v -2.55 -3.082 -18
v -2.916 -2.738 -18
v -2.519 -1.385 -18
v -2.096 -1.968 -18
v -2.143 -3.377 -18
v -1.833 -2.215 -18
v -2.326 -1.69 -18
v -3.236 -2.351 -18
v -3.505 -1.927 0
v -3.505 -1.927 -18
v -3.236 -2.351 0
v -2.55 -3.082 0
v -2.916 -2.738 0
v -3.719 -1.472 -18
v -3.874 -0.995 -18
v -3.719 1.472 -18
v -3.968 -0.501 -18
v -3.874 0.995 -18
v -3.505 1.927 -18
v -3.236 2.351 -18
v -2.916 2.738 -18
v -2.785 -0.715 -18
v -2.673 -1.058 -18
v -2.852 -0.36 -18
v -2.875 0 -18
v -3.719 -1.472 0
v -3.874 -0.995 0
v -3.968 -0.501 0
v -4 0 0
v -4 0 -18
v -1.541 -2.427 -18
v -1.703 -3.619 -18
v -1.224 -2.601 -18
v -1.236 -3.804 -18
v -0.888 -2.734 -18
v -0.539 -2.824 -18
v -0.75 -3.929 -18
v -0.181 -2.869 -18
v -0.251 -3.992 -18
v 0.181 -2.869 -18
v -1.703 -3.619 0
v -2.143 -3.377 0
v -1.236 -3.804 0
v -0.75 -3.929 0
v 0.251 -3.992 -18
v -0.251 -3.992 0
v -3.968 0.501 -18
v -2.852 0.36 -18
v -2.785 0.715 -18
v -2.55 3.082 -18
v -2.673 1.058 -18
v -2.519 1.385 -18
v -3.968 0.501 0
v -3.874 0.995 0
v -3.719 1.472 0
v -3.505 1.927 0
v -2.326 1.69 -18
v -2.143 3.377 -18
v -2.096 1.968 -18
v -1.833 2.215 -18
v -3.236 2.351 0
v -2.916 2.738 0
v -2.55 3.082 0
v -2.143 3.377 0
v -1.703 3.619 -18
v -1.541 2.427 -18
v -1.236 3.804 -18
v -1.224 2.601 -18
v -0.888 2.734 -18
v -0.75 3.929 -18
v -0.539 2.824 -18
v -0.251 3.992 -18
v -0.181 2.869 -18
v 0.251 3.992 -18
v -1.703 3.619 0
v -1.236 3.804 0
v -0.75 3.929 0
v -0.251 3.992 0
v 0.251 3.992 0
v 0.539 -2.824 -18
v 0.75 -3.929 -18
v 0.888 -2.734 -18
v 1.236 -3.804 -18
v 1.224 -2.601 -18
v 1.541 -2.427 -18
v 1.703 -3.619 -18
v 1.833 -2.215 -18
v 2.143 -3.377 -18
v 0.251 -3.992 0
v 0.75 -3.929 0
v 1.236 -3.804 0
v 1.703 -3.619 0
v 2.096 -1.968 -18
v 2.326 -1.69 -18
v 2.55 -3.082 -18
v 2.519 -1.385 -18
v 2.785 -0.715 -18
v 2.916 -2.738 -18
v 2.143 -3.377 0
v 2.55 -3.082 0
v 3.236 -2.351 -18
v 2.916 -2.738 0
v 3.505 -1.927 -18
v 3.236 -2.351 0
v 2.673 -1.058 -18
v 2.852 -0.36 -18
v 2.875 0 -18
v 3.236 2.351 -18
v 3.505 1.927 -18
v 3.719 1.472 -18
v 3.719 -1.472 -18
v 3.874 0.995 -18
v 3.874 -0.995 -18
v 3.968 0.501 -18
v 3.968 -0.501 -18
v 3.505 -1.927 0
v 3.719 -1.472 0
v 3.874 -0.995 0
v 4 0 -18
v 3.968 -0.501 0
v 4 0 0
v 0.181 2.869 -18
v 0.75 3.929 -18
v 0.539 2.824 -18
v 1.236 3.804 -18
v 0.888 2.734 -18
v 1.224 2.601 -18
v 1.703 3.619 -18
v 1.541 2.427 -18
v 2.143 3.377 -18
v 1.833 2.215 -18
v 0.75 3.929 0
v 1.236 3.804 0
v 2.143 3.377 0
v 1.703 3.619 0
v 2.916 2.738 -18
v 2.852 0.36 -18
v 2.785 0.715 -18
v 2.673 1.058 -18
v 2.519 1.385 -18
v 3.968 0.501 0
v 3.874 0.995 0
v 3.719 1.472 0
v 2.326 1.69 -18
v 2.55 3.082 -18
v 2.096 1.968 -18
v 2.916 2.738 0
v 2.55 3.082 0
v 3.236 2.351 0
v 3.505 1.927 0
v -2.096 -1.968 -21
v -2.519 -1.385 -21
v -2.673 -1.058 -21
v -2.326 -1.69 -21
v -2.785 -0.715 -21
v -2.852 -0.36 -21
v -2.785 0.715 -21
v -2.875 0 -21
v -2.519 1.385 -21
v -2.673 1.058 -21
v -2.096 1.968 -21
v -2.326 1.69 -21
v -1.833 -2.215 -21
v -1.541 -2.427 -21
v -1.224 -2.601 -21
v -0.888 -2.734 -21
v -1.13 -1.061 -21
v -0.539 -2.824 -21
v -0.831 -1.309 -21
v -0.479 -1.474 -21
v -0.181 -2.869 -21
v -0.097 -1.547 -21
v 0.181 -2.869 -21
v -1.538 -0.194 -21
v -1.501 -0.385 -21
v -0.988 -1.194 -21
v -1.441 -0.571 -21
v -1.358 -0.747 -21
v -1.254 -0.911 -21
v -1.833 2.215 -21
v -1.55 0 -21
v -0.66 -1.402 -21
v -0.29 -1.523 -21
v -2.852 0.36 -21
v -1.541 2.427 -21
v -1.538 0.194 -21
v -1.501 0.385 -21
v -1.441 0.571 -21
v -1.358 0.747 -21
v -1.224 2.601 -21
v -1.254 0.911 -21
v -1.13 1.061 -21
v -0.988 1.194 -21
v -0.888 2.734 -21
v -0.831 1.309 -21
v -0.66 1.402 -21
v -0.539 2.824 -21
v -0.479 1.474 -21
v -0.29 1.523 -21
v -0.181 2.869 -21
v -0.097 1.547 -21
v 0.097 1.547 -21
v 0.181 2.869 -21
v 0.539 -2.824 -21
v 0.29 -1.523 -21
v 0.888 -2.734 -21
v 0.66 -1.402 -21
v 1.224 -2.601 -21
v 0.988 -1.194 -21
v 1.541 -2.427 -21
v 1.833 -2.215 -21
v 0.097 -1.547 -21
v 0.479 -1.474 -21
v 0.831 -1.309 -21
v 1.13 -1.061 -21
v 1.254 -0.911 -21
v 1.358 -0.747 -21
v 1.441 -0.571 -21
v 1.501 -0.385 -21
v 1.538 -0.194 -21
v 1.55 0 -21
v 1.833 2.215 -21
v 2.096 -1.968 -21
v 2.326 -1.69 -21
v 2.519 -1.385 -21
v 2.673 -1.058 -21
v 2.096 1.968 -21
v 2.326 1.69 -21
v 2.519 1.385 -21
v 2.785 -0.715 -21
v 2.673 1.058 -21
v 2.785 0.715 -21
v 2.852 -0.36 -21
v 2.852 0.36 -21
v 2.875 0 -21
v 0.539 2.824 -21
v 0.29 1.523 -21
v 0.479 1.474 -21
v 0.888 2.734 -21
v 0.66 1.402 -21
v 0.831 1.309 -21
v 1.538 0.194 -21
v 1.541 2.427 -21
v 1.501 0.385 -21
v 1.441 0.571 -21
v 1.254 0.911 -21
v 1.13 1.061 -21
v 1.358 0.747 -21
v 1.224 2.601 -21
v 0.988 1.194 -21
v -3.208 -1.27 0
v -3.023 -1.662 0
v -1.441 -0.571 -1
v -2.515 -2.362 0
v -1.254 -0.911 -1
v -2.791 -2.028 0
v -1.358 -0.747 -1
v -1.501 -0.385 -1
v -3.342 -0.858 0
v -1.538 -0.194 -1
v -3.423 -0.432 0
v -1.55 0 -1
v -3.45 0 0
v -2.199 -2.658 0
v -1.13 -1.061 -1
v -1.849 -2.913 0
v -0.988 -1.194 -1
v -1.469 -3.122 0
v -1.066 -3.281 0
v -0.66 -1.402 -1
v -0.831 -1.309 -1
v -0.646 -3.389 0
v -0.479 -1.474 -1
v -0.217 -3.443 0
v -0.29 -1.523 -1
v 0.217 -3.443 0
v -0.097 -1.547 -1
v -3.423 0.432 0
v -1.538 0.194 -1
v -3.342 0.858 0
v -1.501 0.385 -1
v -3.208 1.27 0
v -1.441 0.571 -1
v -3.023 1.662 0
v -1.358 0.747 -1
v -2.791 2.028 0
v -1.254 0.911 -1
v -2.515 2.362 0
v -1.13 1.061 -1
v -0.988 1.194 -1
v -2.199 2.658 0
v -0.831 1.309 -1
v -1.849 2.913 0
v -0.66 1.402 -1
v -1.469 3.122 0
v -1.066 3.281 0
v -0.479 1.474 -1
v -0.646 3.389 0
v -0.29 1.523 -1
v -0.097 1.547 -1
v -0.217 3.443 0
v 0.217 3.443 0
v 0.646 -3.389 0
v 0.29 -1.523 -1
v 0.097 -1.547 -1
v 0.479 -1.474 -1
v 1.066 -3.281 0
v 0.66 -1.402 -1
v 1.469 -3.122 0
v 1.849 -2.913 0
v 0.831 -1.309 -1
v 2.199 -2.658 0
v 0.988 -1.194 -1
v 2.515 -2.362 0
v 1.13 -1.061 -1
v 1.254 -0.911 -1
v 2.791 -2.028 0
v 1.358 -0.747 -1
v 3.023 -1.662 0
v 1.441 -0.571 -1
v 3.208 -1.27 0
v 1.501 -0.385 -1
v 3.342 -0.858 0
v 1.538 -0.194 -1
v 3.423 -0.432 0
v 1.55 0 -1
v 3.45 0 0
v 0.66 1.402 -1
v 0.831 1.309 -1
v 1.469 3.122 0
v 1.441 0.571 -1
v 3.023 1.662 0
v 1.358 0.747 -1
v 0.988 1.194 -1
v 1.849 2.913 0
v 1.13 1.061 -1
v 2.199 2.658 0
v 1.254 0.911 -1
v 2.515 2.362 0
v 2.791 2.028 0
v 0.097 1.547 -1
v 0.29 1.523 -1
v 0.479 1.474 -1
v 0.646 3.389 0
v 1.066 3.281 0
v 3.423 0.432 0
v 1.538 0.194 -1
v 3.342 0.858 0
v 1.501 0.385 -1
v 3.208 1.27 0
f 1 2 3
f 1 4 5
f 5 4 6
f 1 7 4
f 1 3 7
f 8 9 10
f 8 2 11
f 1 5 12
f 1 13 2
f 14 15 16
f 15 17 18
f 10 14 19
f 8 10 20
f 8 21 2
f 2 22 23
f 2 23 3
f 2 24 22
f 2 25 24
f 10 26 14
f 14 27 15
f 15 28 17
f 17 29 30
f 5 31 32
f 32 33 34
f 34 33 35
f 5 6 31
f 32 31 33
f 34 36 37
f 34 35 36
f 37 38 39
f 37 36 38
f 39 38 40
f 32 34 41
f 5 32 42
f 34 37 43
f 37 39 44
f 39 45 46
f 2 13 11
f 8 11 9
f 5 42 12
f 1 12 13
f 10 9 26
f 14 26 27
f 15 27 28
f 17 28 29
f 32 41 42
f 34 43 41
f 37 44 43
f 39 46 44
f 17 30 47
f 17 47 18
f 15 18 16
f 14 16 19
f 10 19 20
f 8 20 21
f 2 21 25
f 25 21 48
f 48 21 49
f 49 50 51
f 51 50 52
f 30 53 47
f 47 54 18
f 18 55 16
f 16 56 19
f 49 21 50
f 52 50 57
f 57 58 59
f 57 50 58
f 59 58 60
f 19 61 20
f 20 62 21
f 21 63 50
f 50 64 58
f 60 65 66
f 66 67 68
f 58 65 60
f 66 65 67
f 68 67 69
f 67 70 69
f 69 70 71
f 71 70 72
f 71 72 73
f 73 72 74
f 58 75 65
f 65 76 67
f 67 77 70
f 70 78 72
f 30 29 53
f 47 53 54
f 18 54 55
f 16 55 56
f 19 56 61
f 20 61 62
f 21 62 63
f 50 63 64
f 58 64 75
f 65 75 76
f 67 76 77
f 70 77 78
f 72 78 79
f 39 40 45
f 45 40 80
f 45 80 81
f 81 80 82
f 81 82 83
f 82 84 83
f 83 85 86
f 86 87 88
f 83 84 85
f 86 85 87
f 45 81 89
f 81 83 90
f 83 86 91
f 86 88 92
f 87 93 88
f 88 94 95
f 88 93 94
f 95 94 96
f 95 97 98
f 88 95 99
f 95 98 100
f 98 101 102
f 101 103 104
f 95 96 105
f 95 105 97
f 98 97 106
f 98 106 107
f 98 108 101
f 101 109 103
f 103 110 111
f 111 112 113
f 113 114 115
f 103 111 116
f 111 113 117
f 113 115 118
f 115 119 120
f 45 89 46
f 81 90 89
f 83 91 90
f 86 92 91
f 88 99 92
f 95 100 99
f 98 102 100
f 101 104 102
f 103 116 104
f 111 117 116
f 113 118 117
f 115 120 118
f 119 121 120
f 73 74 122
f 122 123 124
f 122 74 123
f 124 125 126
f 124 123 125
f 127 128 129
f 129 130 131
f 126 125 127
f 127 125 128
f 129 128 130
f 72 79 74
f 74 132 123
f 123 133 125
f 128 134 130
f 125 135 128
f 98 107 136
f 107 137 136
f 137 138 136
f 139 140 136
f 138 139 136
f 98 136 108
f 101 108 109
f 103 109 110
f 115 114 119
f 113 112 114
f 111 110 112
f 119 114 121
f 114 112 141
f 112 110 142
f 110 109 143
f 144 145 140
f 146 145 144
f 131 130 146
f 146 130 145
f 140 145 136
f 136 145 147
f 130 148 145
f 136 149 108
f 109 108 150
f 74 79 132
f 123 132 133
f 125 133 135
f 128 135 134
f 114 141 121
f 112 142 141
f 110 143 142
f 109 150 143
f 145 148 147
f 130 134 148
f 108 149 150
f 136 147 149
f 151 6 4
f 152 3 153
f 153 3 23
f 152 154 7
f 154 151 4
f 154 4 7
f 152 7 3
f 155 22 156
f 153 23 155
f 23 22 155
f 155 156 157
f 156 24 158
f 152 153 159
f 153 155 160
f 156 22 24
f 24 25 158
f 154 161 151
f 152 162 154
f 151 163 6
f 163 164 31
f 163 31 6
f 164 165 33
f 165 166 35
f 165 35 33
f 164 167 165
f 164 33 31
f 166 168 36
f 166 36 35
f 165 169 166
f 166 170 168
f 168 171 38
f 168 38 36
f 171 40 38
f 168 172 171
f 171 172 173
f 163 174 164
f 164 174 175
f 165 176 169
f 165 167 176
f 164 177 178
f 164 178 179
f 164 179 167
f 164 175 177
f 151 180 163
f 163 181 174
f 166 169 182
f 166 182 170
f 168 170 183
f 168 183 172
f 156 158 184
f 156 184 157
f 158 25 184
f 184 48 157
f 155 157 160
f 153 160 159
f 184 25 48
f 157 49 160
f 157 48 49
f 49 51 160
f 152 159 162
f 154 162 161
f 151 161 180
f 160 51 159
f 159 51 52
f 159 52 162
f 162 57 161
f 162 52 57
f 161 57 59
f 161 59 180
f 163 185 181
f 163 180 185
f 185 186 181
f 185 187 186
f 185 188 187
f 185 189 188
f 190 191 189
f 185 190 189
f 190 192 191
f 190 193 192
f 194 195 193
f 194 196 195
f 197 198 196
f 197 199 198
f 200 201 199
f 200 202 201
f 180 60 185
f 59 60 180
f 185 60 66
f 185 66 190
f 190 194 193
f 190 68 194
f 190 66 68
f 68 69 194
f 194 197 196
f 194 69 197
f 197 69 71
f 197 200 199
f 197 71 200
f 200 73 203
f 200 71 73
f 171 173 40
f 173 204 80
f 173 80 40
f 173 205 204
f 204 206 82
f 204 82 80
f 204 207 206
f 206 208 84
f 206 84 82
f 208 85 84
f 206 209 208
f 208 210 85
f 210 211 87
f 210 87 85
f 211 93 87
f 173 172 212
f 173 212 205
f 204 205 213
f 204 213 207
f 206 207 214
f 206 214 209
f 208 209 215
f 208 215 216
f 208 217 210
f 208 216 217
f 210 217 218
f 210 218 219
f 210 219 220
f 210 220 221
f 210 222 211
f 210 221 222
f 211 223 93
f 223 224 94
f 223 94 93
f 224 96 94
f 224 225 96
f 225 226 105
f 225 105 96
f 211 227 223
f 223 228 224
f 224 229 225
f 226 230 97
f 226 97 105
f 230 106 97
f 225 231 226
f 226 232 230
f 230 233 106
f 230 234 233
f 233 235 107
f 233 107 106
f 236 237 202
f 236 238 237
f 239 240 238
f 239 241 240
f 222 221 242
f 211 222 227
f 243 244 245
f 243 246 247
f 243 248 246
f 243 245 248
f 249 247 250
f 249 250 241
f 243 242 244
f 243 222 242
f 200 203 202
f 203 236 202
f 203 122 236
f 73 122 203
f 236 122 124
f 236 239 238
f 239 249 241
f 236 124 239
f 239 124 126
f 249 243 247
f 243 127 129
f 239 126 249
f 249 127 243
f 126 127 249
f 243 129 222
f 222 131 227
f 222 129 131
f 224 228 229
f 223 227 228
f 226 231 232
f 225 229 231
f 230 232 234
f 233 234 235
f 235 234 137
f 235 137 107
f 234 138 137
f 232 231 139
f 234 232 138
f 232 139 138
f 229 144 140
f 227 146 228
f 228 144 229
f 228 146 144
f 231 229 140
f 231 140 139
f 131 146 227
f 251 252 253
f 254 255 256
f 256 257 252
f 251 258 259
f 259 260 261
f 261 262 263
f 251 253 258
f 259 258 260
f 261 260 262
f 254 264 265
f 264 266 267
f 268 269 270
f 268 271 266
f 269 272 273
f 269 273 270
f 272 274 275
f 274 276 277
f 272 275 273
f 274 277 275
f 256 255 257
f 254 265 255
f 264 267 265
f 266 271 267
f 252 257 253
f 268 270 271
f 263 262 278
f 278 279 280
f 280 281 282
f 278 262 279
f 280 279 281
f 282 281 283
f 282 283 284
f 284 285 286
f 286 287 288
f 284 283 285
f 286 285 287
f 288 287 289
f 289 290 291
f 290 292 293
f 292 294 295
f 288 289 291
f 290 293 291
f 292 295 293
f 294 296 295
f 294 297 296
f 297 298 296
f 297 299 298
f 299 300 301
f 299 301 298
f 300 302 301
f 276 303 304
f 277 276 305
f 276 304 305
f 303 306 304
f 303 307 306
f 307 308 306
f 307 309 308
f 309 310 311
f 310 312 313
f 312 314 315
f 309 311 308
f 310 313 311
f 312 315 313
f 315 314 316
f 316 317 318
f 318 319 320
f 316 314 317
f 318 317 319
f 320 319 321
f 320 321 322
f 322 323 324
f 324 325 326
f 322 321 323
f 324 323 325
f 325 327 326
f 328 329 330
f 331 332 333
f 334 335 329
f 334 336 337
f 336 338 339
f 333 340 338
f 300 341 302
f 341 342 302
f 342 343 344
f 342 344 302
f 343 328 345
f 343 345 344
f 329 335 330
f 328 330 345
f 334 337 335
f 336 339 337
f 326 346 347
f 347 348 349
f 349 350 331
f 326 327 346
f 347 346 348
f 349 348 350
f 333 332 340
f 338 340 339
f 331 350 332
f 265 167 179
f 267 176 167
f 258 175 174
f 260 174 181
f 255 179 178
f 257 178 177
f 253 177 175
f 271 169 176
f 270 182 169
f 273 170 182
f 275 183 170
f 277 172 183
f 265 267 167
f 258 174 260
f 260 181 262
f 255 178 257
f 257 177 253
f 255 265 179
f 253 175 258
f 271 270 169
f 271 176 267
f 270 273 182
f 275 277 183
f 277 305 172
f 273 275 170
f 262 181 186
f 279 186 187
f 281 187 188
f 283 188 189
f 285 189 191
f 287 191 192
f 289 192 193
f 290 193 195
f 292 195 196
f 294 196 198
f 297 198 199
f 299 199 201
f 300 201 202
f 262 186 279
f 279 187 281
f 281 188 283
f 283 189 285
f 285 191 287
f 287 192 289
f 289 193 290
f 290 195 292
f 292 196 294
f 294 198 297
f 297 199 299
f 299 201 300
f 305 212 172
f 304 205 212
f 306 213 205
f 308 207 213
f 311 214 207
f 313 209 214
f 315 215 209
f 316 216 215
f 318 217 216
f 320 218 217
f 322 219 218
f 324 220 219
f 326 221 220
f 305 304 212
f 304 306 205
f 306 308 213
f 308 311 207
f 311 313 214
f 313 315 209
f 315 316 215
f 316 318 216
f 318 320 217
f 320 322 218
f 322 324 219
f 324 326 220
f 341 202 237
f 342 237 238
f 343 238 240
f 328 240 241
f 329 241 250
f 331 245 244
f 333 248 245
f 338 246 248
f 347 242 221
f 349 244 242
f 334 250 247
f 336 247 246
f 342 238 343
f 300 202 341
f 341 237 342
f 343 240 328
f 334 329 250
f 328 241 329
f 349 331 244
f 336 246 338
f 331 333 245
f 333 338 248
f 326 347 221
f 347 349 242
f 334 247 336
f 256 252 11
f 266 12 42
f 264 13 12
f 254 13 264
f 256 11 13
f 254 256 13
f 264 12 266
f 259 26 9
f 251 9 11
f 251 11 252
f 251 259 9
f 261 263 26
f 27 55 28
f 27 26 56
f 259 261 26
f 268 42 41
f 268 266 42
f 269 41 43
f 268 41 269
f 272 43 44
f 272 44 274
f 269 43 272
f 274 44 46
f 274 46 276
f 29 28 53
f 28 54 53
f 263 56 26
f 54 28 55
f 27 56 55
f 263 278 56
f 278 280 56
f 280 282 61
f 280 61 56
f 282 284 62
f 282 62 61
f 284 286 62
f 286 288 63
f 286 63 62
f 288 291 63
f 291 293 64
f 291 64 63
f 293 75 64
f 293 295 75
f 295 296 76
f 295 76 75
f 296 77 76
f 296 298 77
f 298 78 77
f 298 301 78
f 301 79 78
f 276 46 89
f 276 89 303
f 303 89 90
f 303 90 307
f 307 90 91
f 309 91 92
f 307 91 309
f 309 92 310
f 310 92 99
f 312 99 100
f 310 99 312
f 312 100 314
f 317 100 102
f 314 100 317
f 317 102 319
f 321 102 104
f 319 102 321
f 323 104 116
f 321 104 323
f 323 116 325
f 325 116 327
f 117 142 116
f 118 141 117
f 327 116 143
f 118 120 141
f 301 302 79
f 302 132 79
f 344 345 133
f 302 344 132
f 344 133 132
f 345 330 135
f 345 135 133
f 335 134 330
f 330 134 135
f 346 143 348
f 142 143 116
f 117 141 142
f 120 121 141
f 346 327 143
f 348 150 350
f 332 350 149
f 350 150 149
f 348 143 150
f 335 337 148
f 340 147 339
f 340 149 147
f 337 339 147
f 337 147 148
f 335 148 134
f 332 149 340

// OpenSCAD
$fn = 50;

difference() {
	union() {
		translate(v = [0, 0, -18.0]) {
			cylinder(h = 21, r = 4.0);
		}
		#translate(v = [0, 0, -21.0]) {
			cylinder(h = 21, r = 2.875);
		}
	}
	union() {
		translate(v = [0, 0, 0]) {
			rotate(a = [0, 0, 0]) {
				difference() {
					union() {
						translate(v = [0, 0, -21.0]) {
							cylinder(h = 21, r = 1.25);
						}
						translate(v = [0, 0, -1.0]) {
							cylinder(h = 1.0, r1 = 1.55, r2 = 3.45);
						}
						translate(v = [0, 0, -21.0]) {
							cylinder(h = 21, r = 1.55);
						}
						translate(v = [0, 0, -21.0]) {
							cylinder(h = 21, r = 1.25);
						}
					}
					union();
				}
			}
		}
		#cylinder(h = 3, r = 5.0);
	}
}
